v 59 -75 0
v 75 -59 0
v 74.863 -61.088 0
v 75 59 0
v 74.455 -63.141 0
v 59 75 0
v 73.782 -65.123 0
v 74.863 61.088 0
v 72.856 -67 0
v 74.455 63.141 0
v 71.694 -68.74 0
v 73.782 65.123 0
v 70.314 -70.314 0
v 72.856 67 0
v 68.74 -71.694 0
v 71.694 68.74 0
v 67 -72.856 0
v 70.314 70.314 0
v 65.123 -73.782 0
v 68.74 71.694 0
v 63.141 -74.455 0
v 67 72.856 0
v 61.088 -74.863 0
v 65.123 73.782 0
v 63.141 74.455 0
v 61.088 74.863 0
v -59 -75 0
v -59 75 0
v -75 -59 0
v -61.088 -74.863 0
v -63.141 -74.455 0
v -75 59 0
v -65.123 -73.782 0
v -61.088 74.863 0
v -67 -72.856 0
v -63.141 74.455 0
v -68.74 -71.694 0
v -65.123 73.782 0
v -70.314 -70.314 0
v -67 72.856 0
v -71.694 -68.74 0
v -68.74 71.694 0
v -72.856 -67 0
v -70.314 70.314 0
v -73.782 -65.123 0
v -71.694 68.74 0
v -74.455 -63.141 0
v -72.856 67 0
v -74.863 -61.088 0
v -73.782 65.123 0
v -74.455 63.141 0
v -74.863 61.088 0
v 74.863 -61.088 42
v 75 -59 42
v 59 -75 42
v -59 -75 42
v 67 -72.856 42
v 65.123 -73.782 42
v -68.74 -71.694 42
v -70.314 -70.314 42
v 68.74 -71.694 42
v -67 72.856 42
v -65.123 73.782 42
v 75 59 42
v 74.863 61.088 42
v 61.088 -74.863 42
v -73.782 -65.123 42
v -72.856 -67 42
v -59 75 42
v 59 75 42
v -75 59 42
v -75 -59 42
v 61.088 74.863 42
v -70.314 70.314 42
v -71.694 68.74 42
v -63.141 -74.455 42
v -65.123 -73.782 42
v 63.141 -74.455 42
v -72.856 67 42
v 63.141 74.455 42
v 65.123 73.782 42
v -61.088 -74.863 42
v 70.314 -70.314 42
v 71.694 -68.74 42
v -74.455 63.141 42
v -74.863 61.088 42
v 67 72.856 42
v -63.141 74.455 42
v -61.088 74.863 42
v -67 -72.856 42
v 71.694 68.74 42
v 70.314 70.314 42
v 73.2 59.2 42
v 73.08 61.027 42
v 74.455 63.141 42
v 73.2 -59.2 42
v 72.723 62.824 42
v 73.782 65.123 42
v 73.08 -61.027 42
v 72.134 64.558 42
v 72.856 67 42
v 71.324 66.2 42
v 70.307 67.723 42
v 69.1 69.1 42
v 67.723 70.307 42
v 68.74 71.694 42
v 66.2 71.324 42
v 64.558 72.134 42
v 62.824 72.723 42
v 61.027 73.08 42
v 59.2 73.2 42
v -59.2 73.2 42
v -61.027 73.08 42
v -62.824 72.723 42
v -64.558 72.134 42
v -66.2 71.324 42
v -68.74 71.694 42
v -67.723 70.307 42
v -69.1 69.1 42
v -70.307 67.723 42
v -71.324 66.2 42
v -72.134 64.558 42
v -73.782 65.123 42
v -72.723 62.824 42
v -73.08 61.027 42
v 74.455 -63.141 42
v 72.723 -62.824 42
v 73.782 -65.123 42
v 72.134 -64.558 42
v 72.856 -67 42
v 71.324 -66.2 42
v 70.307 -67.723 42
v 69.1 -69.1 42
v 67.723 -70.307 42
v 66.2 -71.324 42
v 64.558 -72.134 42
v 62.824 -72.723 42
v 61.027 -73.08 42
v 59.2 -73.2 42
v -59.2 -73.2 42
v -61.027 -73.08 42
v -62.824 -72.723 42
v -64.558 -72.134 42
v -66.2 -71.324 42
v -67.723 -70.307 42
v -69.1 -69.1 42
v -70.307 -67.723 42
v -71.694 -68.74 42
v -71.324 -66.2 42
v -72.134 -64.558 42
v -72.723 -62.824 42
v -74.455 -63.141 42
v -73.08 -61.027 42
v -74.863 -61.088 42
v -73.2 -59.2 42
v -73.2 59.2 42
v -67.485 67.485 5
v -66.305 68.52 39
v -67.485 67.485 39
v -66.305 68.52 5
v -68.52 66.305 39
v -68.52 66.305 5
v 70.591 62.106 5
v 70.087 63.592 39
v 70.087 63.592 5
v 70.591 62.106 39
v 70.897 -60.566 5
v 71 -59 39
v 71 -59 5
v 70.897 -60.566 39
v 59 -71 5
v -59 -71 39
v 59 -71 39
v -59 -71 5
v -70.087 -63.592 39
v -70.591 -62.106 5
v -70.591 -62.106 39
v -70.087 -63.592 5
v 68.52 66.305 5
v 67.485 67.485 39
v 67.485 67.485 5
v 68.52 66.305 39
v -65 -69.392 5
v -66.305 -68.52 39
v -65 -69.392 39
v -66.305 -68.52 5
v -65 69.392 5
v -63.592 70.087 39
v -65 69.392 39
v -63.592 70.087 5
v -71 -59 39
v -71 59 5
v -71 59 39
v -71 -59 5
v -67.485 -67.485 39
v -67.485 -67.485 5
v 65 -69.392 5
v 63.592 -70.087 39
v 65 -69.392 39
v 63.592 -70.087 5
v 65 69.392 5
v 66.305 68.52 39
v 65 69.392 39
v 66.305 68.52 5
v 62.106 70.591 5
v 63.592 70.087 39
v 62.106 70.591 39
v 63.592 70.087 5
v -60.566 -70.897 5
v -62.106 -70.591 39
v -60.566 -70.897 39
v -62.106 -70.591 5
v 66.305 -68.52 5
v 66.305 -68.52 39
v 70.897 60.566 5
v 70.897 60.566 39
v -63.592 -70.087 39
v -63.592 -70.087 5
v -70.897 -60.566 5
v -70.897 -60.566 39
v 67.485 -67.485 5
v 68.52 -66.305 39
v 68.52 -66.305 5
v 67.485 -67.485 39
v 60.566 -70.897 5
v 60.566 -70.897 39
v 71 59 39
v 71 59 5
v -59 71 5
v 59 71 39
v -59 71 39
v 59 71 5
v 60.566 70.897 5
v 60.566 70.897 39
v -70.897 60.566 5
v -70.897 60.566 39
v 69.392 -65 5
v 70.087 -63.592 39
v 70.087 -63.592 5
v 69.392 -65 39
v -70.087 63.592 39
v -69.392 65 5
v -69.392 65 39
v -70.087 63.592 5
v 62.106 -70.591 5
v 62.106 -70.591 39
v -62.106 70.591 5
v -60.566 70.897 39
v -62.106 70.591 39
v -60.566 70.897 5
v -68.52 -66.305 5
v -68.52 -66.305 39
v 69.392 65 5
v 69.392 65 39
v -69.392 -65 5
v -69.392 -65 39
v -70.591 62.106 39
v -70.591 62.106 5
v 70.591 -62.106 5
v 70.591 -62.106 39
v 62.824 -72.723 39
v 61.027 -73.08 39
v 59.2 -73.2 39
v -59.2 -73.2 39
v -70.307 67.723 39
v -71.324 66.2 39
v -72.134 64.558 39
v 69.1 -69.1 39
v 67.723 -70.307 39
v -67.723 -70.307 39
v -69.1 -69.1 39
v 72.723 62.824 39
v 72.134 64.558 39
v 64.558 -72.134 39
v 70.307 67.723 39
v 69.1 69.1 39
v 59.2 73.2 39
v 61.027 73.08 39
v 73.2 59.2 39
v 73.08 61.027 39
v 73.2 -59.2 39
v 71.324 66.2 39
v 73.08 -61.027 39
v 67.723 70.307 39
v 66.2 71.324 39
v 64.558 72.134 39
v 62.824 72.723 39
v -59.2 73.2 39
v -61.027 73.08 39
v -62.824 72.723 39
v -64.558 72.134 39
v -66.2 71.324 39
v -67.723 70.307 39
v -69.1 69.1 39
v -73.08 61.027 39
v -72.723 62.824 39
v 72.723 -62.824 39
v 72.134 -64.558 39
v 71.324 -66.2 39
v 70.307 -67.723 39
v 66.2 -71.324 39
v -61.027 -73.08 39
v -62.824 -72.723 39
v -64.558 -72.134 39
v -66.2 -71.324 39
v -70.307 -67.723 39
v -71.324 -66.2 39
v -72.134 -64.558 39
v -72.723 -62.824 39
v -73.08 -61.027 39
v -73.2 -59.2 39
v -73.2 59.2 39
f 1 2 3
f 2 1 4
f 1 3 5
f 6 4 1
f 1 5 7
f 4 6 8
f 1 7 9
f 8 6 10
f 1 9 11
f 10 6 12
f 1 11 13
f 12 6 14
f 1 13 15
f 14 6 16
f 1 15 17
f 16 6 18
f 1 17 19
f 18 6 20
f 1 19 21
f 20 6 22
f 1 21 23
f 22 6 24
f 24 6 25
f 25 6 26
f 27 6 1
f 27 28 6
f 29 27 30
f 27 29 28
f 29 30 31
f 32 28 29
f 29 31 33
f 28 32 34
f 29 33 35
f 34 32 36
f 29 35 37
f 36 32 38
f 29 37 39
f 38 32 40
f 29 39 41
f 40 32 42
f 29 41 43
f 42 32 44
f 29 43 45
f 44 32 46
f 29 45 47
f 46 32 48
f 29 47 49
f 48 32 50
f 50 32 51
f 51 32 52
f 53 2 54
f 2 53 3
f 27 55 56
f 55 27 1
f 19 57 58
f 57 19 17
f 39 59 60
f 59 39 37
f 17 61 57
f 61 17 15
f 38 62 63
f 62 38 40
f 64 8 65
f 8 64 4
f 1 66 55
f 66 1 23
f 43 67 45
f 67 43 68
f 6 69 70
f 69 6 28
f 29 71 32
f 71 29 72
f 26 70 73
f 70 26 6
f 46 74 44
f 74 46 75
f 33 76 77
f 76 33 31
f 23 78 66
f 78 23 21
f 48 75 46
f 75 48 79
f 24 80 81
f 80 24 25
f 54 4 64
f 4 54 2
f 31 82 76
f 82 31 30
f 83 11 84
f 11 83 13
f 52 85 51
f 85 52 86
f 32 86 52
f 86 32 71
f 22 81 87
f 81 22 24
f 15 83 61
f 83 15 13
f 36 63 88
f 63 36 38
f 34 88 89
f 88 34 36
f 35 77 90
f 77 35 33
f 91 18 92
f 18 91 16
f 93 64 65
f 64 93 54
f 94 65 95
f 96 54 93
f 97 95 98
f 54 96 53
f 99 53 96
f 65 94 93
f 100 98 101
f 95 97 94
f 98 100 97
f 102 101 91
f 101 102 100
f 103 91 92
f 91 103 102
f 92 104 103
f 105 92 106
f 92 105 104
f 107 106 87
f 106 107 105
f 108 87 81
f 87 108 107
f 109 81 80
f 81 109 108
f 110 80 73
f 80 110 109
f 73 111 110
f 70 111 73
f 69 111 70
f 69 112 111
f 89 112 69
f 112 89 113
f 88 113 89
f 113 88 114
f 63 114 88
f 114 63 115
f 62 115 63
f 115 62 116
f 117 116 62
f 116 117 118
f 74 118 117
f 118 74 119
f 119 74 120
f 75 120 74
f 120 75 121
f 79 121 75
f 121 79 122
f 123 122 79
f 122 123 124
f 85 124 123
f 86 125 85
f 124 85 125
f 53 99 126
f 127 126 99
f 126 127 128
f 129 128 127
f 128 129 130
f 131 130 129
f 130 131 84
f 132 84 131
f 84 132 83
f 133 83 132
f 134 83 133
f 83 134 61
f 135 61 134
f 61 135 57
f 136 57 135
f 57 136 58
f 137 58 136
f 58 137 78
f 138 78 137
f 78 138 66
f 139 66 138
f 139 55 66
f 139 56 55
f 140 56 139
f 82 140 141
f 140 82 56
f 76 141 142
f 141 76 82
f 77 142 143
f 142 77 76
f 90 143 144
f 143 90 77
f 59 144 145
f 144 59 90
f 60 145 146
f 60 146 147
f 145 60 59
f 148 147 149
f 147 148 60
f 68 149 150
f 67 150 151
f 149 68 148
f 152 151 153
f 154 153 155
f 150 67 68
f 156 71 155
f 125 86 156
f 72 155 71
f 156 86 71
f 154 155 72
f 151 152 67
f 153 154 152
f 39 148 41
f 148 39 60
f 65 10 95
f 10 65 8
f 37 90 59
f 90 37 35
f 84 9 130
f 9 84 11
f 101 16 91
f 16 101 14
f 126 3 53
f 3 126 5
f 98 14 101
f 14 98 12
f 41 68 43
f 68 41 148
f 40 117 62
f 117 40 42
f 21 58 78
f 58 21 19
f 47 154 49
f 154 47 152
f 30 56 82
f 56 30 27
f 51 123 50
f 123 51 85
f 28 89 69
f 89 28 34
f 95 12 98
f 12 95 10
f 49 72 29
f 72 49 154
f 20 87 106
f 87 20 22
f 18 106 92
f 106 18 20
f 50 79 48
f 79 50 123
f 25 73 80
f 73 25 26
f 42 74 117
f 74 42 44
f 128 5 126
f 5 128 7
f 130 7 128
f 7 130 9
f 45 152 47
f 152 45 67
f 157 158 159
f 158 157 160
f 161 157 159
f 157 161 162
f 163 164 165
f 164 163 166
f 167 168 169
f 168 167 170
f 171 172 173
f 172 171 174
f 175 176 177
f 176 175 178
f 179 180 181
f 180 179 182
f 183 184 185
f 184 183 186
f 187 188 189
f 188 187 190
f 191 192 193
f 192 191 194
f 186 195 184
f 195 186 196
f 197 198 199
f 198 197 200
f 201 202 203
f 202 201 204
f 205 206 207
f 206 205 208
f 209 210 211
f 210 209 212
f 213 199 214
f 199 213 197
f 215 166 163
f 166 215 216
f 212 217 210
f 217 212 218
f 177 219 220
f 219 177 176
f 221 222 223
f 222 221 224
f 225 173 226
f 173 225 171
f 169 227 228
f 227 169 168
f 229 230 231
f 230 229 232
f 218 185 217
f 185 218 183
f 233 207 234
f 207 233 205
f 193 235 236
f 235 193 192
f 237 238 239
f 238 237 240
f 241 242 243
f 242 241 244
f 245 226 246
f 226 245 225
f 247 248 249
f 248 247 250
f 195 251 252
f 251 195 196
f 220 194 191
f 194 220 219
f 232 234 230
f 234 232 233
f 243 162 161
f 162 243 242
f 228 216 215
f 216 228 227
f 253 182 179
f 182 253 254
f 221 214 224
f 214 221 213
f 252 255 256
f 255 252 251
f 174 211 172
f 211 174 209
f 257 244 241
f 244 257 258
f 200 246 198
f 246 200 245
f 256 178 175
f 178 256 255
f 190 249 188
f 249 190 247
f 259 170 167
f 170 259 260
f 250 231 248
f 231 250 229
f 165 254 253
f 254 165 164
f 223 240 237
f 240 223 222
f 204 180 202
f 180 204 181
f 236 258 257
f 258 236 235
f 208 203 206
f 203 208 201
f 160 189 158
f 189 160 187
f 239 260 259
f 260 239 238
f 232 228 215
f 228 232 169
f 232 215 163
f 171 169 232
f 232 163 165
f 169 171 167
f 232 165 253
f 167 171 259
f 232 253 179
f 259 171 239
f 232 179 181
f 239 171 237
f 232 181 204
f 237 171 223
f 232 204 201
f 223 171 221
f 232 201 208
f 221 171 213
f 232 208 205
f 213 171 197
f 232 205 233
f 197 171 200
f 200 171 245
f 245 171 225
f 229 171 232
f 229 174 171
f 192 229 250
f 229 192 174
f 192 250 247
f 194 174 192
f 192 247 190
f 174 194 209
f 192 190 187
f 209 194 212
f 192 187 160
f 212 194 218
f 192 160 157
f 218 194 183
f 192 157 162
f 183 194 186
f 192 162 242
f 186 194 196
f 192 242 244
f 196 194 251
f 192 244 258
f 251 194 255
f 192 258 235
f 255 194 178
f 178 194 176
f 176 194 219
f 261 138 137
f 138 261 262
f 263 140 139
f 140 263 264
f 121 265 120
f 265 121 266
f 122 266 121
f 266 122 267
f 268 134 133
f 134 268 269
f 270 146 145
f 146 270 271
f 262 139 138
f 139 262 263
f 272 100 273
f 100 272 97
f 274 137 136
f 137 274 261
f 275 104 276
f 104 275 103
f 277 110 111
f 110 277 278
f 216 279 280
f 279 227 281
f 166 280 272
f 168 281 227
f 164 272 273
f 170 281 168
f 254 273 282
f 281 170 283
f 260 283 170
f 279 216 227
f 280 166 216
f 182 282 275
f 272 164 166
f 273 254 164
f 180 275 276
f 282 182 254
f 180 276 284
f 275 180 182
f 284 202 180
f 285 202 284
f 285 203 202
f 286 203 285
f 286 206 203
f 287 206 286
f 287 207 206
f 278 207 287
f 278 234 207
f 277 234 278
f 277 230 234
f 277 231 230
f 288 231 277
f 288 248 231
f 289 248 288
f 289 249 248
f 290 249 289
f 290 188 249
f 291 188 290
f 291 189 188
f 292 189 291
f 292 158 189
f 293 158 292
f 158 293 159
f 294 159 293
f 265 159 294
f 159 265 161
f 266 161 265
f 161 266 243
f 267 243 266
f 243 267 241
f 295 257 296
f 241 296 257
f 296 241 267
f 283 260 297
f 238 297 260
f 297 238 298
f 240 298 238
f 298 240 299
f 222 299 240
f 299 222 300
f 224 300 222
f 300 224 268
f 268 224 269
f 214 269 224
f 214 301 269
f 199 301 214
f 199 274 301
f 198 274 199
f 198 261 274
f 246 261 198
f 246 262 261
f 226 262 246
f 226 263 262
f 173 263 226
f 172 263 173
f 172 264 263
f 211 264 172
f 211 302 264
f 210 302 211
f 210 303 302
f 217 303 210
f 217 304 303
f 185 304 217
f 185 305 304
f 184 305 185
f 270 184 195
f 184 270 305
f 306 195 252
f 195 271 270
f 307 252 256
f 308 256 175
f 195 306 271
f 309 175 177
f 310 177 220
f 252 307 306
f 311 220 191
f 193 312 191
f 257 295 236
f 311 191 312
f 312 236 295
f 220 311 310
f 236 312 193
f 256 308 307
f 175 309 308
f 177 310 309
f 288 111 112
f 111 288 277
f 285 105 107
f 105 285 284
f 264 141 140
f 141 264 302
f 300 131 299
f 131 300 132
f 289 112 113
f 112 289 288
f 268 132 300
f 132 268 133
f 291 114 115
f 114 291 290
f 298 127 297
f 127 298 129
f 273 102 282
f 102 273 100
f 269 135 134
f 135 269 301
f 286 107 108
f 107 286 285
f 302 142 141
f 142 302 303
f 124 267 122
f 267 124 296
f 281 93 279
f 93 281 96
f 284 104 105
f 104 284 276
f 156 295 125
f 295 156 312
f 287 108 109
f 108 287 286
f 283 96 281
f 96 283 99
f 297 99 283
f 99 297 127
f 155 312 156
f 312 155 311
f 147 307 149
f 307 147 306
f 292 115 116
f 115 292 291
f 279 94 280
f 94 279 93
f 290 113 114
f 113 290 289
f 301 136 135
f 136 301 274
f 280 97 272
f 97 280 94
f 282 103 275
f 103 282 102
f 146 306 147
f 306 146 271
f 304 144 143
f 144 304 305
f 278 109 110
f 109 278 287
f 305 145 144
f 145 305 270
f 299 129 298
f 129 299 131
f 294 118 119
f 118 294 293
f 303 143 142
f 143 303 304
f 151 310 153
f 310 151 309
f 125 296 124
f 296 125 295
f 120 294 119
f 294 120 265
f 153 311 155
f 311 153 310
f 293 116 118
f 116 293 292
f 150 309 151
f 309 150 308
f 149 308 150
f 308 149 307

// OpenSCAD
// ============================================================================
// Get Me An Alt — Parametric OpenSCAD Module
// Part: PRT-01 — Weighted Base Pedestal & 6808 Bearing Seat (base-pedestal)
// Function: Stationary structural foundation and J1 waist bearing race.
// Target Bounding Box (mm): [150, 150, 42]
// Print Material: PETG | Min Wall: >= 1.6mm | Tolerance: 0.2mm
// ============================================================================
$fn = 48;
part_width = 150;
part_depth = 150;
part_height = 42;
wall_thickness = 4;
floor_thickness = 5;
corner_radius = 16;
tolerance = 0.2;
m3_clearance_d = 3.4; // M3 screw clearance hole (3.0mm + 2*0.2mm)

module rounded_rect_prism(w, d, h, r) {
  cr = max(0.5, min(r, min(w, d) / 2 - 0.1));
  linear_extrude(height = h)
    offset(r = cr)
      offset(r = -cr)
        square([w, d], center = true);
}

module part_base_pedestal() {
  difference() {
    // Outer watertight vessel with rounded corners
    rounded_rect_prism(part_width, part_depth, part_height, corner_radius);
    // Inner cavity (walls >= 1.6mm, reinforced floor)
    translate([0, 0, floor_thickness])
      rounded_rect_prism(
        part_width - 2 * wall_thickness,
        part_depth - 2 * wall_thickness,
        part_height,
        max(1.0, corner_radius - wall_thickness)
      );
    // Top snap-fit lid rabbet lip (0.2mm clearance)
    translate([0, 0, part_height - 3.0])
      rounded_rect_prism(
        part_width - wall_thickness + 2 * tolerance,
        part_depth - wall_thickness + 2 * tolerance,
        4.0,
        max(1.0, corner_radius - wall_thickness * 0.5)
      );
  }
}

part_base_pedestal();
